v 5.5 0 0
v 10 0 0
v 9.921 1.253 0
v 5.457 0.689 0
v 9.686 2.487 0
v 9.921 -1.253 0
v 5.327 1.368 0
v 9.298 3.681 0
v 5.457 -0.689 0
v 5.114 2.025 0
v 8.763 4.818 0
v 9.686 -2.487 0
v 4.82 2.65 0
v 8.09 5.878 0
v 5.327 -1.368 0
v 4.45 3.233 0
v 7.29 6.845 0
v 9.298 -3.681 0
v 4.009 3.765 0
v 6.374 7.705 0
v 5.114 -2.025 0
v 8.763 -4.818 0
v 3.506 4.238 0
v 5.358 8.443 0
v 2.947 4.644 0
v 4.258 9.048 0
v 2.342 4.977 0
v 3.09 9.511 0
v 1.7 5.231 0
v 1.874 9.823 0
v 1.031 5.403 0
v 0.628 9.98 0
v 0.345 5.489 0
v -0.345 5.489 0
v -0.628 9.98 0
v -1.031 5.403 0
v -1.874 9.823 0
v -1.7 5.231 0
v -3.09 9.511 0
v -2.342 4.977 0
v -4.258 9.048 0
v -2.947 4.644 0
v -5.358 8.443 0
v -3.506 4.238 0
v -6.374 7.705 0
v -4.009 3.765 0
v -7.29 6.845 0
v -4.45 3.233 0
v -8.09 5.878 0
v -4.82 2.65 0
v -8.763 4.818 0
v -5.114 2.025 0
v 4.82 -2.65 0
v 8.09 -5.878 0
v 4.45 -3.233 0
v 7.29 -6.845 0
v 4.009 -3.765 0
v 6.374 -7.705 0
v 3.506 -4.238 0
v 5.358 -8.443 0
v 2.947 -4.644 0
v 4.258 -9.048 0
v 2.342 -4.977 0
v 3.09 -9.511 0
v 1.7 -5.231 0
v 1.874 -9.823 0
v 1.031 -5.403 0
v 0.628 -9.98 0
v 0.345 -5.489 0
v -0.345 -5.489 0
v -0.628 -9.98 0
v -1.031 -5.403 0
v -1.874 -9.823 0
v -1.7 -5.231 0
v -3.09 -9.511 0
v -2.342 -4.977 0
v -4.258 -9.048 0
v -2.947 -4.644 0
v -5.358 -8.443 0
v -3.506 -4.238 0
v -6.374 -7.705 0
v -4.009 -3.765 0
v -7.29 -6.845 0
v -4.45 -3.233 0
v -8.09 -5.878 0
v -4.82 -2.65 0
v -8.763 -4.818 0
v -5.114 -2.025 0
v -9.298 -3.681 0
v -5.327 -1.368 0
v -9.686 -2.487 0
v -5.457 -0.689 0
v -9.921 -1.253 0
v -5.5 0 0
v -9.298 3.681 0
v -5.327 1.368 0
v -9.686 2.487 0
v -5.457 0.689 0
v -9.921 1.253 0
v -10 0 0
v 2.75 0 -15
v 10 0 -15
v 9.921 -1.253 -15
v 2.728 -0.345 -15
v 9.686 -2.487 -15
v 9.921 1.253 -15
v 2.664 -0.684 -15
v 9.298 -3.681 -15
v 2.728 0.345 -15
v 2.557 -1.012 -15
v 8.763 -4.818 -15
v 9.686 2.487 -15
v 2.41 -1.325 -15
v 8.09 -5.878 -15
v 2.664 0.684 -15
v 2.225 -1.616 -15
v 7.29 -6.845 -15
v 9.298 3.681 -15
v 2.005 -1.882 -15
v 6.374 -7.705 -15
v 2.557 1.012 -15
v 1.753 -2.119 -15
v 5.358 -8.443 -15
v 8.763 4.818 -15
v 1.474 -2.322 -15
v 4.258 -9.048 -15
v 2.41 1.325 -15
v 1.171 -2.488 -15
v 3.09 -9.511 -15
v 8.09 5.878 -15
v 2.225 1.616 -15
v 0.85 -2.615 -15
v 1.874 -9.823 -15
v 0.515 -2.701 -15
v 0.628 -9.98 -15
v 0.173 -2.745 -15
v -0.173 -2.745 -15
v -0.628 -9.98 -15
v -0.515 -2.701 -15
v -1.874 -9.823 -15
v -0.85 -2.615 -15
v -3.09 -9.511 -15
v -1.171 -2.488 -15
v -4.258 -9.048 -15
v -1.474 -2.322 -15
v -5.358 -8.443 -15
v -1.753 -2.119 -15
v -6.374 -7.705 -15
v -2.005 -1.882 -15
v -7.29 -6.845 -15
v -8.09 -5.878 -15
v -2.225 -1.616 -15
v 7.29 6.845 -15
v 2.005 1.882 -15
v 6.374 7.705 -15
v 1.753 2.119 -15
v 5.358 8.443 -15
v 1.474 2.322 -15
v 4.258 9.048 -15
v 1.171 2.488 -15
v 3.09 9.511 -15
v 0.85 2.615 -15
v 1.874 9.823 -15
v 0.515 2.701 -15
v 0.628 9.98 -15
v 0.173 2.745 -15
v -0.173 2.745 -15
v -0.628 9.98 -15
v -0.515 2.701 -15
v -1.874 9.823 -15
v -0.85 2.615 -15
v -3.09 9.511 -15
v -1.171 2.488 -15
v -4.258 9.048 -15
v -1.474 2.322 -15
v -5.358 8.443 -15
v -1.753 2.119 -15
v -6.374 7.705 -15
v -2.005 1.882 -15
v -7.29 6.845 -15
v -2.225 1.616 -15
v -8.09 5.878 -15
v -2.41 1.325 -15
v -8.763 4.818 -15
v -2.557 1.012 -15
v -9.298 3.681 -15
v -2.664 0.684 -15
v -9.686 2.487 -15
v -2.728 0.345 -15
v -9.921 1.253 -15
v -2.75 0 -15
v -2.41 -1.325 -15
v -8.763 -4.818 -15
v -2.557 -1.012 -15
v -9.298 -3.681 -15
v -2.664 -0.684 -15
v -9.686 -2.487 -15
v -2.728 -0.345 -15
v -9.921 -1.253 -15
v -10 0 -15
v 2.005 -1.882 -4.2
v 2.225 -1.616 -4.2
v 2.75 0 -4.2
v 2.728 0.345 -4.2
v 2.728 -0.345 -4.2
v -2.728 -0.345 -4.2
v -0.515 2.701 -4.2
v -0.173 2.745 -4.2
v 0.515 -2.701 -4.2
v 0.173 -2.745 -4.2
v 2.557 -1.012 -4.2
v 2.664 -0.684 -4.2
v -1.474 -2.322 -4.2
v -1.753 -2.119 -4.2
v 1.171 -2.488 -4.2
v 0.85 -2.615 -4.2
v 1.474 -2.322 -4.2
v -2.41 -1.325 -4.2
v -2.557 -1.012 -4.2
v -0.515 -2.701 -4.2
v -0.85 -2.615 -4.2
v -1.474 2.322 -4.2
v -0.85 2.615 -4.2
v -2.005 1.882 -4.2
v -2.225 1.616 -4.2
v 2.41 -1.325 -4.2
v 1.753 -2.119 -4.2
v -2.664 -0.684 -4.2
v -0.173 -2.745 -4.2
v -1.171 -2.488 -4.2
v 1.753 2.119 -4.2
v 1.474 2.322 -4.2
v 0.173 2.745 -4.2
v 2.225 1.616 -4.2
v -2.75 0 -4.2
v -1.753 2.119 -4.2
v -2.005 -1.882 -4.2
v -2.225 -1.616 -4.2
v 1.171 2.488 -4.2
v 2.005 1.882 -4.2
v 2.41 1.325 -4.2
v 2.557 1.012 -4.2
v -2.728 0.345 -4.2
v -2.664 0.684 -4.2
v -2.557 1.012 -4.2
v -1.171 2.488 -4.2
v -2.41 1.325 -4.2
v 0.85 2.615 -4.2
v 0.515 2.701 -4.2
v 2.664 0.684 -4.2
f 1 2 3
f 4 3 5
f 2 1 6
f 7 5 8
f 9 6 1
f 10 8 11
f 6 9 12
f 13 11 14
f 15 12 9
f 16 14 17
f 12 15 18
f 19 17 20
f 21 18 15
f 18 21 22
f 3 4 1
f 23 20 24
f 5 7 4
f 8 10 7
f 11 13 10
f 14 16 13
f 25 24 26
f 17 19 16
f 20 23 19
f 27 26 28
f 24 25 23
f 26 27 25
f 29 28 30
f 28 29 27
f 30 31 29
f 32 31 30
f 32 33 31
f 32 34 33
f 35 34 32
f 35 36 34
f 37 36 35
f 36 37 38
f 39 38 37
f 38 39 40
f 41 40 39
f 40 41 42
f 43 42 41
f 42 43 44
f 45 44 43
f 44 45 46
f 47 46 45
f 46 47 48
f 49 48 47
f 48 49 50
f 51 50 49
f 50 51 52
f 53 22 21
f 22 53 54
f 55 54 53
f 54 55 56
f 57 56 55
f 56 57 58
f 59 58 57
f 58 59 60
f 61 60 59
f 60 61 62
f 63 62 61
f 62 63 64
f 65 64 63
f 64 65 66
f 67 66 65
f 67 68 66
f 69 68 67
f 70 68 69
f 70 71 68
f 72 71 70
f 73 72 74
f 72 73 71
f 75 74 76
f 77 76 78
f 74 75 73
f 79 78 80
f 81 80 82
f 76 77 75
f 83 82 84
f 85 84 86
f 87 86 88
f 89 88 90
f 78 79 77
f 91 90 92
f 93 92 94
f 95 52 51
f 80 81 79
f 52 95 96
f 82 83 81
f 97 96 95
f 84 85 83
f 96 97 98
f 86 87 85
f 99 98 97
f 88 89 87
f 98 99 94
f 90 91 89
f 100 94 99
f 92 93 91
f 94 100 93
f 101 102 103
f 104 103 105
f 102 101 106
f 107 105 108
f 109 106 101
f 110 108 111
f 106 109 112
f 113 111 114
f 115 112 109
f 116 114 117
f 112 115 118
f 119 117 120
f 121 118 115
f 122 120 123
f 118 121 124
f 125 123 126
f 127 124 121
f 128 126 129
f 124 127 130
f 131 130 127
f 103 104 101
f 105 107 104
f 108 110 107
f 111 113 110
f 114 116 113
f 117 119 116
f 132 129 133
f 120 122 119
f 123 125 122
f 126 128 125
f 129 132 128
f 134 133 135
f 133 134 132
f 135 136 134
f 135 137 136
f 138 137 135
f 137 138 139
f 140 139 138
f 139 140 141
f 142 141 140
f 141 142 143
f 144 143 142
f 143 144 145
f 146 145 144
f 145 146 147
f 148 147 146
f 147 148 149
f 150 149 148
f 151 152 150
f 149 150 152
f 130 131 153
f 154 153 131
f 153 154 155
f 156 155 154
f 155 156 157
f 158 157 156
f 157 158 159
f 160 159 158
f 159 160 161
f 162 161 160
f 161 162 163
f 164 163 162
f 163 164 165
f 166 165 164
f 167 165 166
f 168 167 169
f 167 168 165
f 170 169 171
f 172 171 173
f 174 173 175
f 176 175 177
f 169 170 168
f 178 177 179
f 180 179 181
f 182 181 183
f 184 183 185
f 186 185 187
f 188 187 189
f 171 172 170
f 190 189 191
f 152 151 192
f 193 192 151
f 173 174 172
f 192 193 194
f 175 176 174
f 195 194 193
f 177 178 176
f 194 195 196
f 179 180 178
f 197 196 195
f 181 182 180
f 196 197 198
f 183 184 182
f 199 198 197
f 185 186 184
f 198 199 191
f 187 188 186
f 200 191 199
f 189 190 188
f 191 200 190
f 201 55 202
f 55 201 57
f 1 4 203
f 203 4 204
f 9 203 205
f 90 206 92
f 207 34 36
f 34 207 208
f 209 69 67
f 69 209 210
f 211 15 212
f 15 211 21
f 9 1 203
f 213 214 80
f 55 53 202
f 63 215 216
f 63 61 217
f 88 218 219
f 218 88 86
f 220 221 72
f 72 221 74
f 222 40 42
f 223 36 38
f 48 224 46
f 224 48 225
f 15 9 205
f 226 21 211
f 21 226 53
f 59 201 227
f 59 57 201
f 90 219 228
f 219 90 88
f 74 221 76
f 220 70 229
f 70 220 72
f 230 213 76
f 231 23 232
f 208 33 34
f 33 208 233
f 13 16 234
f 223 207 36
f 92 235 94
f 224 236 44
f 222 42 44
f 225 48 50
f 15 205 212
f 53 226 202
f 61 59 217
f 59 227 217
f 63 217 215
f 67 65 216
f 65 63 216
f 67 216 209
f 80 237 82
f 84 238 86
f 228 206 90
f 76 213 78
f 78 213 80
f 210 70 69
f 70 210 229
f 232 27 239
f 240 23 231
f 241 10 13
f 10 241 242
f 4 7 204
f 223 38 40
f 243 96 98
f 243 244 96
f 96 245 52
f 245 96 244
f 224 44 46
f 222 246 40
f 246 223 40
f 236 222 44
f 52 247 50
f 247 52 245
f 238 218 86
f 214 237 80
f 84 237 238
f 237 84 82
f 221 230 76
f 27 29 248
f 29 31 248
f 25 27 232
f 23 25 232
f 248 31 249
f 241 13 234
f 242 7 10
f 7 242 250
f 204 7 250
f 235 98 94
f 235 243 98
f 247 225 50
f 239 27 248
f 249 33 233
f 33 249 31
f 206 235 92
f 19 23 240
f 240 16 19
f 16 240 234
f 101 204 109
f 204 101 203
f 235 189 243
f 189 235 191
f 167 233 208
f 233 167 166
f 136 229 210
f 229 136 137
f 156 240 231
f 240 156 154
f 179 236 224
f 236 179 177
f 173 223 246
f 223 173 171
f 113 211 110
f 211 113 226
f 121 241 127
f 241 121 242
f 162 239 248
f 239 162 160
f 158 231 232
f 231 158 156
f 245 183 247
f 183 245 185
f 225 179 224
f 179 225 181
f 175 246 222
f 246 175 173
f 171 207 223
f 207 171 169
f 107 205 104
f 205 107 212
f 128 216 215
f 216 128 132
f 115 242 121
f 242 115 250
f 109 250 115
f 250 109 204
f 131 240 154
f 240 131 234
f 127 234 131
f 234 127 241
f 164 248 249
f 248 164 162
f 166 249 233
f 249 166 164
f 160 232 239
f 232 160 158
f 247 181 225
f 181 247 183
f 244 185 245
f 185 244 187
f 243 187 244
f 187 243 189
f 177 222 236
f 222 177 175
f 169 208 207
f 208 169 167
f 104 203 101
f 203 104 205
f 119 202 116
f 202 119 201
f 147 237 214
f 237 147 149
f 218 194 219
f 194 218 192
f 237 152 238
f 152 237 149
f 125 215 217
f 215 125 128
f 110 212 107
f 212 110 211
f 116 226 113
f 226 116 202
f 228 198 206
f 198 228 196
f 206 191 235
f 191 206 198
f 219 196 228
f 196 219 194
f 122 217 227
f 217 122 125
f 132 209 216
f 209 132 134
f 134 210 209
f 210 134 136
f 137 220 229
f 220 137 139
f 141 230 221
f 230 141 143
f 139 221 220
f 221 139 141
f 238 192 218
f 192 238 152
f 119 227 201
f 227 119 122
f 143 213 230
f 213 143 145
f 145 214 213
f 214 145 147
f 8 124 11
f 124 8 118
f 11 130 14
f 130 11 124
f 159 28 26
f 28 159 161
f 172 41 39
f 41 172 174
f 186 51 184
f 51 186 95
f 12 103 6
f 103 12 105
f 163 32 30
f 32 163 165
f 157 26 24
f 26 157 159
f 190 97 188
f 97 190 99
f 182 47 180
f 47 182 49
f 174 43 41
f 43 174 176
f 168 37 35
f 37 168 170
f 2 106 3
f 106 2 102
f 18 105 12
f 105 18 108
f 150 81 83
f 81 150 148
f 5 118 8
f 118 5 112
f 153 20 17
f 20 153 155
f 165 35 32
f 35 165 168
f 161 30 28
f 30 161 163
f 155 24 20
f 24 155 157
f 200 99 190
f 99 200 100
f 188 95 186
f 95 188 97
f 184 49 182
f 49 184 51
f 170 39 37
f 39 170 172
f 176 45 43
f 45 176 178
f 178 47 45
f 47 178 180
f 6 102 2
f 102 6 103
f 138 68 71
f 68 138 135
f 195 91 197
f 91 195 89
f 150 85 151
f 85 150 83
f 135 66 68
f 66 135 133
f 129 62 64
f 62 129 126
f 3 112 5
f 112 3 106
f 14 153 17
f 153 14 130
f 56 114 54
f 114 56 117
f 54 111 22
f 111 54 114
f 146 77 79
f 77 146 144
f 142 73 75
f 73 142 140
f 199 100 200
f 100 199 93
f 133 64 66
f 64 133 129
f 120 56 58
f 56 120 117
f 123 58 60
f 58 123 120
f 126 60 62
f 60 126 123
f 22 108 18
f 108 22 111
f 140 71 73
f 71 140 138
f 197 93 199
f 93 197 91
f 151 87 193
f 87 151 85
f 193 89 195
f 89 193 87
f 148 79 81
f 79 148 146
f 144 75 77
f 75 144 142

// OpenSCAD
$fn = 50;


difference() {
	union() {
		translate(v = [0, 0, -15.0000000000]) {
			cylinder(h = 15, r = 10.0000000000);
		}
		cylinder(h = 0, r = 13.0000000000);
	}
	union() {
		translate(v = [0, 0, 0]) {
			rotate(a = [0, 0, 0]) {
				difference() {
					union() {
						#translate(v = [0, 0, -15.0000000000]) {
							cylinder(h = 15, r = 2.2500000000);
						}
						#translate(v = [0, 0, -4.2000000000]) {
							cylinder(h = 4.2000000000, r = 10.0000000000, r1 = 2.7500000000, r2 = 5.5000000000);
						}
						#translate(v = [0, 0, -15.0000000000]) {
							cylinder(h = 15, r = 2.7500000000);
						}
						#translate(v = [0, 0, -15.0000000000]) {
							cylinder(h = 15, r = 2.2500000000);
						}
					}
					union();
				}
			}
		}
	}
}
